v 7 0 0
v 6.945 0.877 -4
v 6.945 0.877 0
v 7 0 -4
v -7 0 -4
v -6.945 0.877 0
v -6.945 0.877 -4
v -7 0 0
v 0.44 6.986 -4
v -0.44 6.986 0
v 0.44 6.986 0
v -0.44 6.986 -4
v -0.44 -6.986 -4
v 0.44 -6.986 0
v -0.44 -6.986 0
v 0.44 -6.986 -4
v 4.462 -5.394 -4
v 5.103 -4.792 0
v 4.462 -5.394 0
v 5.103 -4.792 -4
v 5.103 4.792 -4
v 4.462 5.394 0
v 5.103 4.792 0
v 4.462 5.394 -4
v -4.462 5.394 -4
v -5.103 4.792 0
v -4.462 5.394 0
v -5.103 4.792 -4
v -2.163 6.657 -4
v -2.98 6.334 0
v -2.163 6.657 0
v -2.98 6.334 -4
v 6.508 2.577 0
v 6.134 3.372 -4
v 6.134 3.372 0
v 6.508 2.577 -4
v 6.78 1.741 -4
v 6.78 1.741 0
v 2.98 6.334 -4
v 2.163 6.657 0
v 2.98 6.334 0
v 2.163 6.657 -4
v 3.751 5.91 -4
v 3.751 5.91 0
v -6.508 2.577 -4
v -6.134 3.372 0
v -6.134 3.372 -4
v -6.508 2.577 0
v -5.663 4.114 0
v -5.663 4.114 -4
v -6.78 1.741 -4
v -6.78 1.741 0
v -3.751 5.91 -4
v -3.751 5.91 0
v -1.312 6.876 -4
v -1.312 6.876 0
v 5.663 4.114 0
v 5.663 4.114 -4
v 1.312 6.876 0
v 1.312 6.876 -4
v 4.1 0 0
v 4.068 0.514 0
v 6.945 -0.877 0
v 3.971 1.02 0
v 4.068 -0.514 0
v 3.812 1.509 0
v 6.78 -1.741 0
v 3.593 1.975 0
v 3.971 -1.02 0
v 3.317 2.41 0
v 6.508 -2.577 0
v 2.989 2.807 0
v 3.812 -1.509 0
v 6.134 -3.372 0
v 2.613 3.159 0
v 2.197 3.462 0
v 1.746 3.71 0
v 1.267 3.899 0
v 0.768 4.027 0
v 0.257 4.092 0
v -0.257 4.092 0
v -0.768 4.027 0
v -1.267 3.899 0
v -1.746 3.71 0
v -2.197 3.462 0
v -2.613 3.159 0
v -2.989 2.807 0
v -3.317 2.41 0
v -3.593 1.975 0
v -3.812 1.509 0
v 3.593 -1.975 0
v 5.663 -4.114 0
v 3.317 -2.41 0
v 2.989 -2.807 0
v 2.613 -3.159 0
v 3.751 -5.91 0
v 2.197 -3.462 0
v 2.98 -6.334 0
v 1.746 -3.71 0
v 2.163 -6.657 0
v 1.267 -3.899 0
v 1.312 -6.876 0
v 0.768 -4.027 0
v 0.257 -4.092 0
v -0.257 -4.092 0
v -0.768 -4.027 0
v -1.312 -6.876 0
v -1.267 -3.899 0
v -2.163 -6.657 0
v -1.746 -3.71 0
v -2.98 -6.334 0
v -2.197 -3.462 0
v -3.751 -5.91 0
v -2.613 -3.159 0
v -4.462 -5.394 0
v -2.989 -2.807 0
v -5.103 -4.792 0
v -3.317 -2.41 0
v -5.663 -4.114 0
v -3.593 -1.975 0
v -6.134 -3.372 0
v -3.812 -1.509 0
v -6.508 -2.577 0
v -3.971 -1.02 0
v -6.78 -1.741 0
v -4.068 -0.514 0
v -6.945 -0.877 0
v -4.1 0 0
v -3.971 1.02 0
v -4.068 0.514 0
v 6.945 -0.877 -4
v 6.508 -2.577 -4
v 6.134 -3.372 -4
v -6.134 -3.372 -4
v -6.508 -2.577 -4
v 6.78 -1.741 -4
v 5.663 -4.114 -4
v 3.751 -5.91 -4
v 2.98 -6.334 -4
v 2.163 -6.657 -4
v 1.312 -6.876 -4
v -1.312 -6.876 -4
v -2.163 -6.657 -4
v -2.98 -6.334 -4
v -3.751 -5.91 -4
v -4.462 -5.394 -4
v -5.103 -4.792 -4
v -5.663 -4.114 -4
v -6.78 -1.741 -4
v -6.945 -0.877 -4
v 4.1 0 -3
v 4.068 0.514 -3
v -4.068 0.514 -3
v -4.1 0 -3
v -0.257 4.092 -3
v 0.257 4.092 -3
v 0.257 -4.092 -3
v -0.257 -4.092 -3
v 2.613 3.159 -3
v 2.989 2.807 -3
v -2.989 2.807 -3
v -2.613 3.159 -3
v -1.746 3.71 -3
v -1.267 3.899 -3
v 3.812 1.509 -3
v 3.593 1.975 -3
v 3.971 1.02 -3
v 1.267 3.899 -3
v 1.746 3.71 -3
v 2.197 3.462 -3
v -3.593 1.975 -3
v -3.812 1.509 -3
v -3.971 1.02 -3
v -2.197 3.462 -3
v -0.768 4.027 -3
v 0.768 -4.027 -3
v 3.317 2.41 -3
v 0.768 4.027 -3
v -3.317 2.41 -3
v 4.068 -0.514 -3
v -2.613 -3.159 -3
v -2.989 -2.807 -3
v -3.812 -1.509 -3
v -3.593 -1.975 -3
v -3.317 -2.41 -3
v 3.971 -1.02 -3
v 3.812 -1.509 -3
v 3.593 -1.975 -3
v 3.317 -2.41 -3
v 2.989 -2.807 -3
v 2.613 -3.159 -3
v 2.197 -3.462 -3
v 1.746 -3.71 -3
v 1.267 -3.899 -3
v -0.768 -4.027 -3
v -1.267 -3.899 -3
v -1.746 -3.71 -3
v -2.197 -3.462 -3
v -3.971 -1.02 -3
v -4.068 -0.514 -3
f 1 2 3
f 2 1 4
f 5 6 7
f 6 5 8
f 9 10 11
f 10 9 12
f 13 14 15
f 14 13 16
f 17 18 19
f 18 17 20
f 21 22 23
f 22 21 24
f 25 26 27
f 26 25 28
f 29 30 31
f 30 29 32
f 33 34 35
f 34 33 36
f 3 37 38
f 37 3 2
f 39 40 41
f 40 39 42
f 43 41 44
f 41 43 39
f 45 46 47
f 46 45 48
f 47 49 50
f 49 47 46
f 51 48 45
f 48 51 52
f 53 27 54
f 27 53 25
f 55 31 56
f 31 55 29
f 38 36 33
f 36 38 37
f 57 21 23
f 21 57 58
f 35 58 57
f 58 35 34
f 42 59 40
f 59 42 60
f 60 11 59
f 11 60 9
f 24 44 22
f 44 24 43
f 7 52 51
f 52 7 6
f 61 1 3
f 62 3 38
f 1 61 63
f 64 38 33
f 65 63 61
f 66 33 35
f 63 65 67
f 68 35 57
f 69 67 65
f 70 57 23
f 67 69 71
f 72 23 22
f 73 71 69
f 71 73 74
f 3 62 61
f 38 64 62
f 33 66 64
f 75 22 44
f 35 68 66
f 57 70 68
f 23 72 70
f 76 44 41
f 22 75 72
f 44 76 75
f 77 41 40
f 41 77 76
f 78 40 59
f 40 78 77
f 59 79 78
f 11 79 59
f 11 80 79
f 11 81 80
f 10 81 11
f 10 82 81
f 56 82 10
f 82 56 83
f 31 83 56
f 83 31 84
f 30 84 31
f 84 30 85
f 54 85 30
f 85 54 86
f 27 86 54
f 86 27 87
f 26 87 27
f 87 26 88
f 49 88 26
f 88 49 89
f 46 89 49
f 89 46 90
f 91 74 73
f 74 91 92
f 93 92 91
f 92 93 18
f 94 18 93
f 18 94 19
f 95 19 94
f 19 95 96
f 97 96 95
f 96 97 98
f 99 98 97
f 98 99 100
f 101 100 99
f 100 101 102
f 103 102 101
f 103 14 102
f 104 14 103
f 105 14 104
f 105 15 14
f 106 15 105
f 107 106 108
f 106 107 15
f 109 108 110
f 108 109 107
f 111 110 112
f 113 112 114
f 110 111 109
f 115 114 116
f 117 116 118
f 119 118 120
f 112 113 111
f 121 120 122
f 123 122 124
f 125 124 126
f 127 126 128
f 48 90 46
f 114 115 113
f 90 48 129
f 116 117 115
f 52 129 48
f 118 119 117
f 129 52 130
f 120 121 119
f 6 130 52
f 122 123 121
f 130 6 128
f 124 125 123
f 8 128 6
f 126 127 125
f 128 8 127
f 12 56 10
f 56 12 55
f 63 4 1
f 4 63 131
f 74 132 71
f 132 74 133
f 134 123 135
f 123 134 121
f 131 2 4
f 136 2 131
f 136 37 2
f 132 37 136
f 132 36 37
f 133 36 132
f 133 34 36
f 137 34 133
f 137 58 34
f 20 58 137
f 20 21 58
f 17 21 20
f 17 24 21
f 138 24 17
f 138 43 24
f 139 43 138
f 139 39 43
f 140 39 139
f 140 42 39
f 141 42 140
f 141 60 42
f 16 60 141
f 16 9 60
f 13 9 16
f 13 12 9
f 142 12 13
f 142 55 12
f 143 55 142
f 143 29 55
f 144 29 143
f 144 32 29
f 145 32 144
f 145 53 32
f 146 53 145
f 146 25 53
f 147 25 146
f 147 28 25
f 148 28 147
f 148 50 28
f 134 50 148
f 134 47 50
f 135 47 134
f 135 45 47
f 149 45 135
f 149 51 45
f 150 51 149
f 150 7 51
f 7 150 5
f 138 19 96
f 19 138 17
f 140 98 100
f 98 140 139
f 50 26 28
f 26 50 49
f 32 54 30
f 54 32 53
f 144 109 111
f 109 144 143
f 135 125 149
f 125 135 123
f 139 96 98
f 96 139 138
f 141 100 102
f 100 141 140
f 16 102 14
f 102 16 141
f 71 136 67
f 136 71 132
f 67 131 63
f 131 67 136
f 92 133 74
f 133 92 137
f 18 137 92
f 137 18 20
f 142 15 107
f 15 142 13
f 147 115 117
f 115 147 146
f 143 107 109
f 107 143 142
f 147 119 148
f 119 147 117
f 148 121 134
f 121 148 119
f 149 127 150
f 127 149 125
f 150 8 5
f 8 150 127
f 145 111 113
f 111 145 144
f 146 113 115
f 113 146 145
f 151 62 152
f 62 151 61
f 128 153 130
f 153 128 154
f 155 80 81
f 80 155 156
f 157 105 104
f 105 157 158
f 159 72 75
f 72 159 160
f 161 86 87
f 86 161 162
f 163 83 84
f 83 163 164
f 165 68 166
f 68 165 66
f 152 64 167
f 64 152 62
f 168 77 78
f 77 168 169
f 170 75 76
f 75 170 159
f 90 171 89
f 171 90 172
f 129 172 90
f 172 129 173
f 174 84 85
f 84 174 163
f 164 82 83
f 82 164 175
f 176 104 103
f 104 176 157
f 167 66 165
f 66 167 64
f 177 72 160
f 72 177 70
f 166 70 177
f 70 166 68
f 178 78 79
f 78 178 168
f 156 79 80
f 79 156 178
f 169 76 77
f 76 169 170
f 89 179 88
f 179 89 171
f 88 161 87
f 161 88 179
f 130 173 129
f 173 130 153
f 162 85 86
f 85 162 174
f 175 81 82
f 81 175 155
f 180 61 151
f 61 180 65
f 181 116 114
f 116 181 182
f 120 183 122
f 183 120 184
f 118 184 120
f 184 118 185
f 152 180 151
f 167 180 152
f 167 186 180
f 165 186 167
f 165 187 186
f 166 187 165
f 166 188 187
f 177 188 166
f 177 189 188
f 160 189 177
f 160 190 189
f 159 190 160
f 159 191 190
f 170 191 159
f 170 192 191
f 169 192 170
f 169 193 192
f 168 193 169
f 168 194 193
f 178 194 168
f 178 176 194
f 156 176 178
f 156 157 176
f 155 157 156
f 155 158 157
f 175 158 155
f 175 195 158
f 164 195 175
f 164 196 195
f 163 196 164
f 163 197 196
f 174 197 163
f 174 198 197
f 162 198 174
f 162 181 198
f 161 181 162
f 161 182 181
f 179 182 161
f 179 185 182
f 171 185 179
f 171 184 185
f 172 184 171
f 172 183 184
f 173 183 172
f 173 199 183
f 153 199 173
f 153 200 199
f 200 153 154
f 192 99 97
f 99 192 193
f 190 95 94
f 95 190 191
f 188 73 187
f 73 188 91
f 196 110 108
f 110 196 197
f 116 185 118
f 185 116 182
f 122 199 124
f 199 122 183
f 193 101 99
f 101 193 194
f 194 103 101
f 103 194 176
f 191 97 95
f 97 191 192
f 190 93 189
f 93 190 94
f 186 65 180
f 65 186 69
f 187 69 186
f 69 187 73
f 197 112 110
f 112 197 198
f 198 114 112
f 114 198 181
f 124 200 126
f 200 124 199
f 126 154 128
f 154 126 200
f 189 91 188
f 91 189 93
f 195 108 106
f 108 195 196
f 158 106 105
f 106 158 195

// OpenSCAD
$fn = 50;


difference() {
	union() {
		translate(v = [0, 0, -4.0000000000]) {
			cylinder(h = 4, r = 7.0000000000);
		}
	}
	union() {
		#translate(v = [0, 0, -3.0000000000]) {
			cylinder(h = 3, r = 4.1000000000);
		}
	}
}
